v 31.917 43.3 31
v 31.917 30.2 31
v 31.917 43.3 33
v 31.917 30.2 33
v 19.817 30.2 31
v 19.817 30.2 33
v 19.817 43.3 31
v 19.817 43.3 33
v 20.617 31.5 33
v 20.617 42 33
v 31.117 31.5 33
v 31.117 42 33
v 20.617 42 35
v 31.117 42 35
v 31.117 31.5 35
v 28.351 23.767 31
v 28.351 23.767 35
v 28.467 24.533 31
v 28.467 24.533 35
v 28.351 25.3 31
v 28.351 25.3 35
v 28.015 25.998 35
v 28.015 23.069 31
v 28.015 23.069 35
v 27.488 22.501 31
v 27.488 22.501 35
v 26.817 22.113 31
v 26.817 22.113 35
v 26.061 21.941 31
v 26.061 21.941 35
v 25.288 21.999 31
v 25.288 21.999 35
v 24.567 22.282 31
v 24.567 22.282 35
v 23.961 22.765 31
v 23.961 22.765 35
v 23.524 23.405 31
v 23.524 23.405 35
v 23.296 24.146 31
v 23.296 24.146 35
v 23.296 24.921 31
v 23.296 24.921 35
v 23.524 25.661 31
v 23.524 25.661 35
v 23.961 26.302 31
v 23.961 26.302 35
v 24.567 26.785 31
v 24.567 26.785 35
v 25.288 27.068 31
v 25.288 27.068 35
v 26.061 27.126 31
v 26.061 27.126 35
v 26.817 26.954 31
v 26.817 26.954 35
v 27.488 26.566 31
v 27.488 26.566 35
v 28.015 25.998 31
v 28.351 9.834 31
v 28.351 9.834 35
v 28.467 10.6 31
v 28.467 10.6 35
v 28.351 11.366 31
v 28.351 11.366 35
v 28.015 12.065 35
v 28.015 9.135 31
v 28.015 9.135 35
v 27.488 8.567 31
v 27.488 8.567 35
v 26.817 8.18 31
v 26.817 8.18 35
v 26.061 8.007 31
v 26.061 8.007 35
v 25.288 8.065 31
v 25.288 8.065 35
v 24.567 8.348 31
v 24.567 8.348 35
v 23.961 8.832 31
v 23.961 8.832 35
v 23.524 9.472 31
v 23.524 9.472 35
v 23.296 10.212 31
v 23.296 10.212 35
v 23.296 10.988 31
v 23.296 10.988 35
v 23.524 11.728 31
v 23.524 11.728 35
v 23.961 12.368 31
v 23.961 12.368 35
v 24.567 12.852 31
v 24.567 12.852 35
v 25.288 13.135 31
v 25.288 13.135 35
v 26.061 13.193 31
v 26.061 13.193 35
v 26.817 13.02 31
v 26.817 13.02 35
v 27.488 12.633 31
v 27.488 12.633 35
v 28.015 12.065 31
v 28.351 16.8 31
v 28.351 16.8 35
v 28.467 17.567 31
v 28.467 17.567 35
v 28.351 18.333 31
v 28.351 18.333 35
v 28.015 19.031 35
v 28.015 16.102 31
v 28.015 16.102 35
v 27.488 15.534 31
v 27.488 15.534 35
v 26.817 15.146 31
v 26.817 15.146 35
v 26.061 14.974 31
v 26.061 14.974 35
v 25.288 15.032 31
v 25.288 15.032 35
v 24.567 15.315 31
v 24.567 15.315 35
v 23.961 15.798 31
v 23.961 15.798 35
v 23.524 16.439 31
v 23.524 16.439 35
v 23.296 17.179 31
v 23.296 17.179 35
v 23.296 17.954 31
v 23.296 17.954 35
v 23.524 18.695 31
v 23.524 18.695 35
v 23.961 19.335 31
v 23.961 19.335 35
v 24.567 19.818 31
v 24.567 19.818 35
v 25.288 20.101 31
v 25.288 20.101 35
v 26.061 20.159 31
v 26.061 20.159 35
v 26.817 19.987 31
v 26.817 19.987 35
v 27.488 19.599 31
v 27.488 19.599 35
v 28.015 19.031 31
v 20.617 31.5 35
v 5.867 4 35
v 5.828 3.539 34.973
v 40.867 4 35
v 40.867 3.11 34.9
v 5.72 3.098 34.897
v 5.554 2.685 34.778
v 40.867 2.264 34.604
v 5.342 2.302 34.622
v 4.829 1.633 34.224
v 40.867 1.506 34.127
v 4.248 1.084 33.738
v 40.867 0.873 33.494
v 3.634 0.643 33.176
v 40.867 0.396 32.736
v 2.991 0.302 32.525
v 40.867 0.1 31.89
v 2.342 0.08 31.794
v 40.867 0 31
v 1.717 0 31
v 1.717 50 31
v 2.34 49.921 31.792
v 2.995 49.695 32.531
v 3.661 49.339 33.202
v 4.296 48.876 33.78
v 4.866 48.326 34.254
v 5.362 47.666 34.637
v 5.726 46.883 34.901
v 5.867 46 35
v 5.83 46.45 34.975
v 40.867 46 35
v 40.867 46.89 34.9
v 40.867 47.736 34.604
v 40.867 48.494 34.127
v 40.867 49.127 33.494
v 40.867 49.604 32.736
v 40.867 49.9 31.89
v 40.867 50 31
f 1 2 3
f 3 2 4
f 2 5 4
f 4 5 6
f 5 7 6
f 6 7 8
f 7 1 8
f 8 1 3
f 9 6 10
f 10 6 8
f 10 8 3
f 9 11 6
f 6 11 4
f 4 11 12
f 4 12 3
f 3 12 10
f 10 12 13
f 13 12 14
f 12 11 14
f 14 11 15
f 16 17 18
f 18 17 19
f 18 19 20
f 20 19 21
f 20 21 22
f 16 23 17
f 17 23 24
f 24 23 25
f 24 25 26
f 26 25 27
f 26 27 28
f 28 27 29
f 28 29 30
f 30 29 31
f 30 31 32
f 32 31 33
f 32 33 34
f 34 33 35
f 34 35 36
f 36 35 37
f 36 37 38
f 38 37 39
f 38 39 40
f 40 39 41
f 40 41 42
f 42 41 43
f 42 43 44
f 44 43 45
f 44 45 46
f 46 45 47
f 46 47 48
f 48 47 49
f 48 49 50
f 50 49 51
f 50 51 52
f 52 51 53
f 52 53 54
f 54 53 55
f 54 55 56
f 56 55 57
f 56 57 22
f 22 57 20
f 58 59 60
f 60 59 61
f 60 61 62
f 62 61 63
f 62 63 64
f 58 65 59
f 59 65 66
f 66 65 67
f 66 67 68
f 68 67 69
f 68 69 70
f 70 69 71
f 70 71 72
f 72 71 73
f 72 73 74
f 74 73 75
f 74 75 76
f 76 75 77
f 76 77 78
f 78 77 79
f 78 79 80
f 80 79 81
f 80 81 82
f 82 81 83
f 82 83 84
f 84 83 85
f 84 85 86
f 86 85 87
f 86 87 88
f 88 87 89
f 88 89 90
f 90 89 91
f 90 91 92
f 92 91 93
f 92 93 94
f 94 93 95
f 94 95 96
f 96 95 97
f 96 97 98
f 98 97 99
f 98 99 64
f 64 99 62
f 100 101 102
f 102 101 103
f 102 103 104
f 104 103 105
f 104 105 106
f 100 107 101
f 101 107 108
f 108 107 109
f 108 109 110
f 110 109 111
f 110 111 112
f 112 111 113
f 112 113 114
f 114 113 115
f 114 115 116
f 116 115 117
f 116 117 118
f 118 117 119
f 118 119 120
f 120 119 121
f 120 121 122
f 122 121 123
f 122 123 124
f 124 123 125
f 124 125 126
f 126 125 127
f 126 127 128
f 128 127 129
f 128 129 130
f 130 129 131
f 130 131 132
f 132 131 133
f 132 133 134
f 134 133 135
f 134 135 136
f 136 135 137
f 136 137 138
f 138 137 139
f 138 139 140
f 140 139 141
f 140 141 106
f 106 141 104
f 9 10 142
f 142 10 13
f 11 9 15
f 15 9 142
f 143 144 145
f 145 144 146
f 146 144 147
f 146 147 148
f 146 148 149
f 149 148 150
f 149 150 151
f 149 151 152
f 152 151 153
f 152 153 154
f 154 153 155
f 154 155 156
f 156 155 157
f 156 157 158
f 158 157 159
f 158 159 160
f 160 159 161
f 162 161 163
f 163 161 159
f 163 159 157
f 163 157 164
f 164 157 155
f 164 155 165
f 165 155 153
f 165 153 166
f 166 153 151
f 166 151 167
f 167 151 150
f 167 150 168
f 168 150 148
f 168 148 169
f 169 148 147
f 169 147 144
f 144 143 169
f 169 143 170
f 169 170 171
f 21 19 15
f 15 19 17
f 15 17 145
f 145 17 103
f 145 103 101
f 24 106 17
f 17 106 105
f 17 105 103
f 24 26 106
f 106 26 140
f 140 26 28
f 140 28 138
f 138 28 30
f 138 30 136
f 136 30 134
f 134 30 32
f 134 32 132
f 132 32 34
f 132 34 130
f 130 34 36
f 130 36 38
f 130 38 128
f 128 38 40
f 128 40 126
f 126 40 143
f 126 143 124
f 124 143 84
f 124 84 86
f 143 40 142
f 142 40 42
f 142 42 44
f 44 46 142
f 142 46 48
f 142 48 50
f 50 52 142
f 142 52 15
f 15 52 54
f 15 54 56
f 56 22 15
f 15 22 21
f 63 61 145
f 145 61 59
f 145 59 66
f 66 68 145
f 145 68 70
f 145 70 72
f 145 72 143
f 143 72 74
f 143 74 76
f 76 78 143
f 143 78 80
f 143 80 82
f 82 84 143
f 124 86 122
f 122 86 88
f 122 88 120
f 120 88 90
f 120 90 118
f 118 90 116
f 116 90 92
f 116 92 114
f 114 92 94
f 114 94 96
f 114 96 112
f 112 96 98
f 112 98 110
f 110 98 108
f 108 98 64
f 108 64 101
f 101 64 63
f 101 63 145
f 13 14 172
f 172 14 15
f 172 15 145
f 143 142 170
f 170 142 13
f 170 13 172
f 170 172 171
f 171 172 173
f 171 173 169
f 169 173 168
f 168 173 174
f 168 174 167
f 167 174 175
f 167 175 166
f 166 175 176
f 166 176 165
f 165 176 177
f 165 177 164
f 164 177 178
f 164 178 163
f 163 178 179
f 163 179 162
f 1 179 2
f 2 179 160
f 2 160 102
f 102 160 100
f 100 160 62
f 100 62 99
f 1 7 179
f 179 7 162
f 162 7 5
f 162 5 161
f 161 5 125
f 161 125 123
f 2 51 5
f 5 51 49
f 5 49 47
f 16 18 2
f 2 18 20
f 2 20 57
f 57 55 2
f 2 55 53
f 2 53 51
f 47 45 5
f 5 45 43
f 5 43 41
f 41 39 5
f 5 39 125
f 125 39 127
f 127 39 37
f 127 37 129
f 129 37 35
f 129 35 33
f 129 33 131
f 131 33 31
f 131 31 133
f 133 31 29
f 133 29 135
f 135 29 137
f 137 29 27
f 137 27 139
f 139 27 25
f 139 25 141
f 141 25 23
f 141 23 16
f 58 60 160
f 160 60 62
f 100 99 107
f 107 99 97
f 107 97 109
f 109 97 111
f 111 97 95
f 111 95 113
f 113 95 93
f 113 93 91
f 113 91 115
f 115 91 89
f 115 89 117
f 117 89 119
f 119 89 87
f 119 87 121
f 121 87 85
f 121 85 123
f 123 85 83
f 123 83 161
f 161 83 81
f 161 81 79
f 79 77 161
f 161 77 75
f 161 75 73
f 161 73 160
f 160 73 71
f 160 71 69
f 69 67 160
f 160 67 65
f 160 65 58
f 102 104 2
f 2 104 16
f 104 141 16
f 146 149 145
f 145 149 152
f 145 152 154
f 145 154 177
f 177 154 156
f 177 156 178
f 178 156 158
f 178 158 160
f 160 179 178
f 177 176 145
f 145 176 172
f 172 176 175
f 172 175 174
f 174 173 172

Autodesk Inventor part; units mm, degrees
ref_plane "YZ Plane" through (0, 0, 0) normal (1, 0, 0) x (0, 1, 0)
ref_plane "XZ Plane" through (0, 0, 0) normal (0, 1, 0) x (-1, 0, 0)
ref_plane "XY Plane" through (0, 0, 0) normal (0, 0, 1) x (1, 0, 0)
sketch "Sketch1" plane through (0, 0, 0) normal (0, 1, 0) x (-1, 0, 0)
  line L0 (0, 65.172) -> (0, -65.172) construction
  line L1 (43.74, 0) -> (-43.74, 0) construction
  spline S0 degree 3 poles (-5.8666, 35) (13.8832, 21.2522) (-10.0462, -16.0043) (8.551, -35) knots 1 1 1 1 2 2 2 2
  line L2 (-5.8666, 35) -> (13.8832, 21.2522) construction
  line L3 (13.8832, 21.2522) -> (-10.0462, -16.0043) construction
  line L4 (-10.0462, -16.0043) -> (8.551, -35) construction
  line L5 (-5.8666, 35) -> (-40.8666, 35)
  line L6 (-1.7165, 31) -> (-40.8666, 31)
  line L7 (-40.8666, 35) -> (-40.8666, 31)
  point P0 (0, 0)
  point P1 (0, 0)
  point P2 (0, 0)
  point P3 (0, 0)
  dimension "d0" = 35
  dimension "d1" = 4
extrude "Extrusion1" add sketch "Sketch1" along normal blind 50
fillet "Fillet1" radius 4 2 edges at (23.3666, 50, 35) (23.3666, 0, 35)
sketch "Sketch2" plane through (5.8666, 4, 35) normal (0, 0, 1) x (1, 0, 0)
  circle A0 centre (20, 6.6) radius 2.6
  circle A1 centre (20, 13.5667) radius 2.6
  circle A2 centre (20, 20.5333) radius 2.6
  line L0 (14.75, 27.5) -> (25.25, 27.5)
  line L1 (25.25, 27.5) -> (25.25, 38)
  line L2 (25.25, 38) -> (14.75, 38)
  line L3 (14.75, 38) -> (14.75, 27.5)
  line L4 (35, 0) -> (35, 42) projected
  line L5 (35, 0) -> (0, 0) projected
  line L6 (0, 42) -> (35, 42) projected
  point P0 (-5.8666, -4)
  dimension "d5" = 5.2
  dimension "d6" = 5.2
  dimension "d7" = 5.2
  dimension "d8" = 10.5
  dimension "d9" = 10.5
  dimension "d10" = 15
  dimension "d11" = 15
  dimension "d12" = 15
  dimension "d13" = 6.6
  dimension "d14" = 4
  dimension "d15" = 6.9667
  dimension "d16" = 6.9667
  dimension "d17" = 6.9667
  dimension "d18" = 20.25
extrude "Extrusion2" cut sketch "Sketch2" against normal blind 70
sketch "Sketch3" plane through (40.8666, 0, 31) normal (0, 0, -1) x (-1, 0, 0)
  line L0 (20.25, 31.5) -> (9.75, 31.5) projected
  line L1 (20.25, 42) -> (20.25, 31.5) projected
  line L2 (9.75, 31.5) -> (9.75, 42) projected
  line L3 (9.75, 42) -> (20.25, 42) projected
  line L4 (21.05, 43.3) -> (8.95, 43.3)
  line L5 (8.95, 43.3) -> (8.95, 30.2)
  line L6 (8.95, 30.2) -> (21.05, 30.2)
  line L7 (21.05, 30.2) -> (21.05, 43.3)
  line L8 (4.9766, 36.75) -> (25.0234, 36.75) construction
  line L9 (15, 47.4174) -> (15, 24.5333) construction
  circle A0 centre (15, 24.5333) radius 2.6 construction
  point P0 (40.8666, 0)
  point P1 (15, 36.75)
  dimension "d21" = 13.1
  dimension "d22" = 12.1
  dimension "d25" = 5.25
  dimension "d28" = 10.5
extrude "Extrusion3" cut sketch "Sketch3" against normal blind 2
equation "\"d6\" = d5"
equation "\"d7\" = d6"
equation "\"d9\" = d8"
equation "\"d11\" = d10"
equation "\"d12\" = d11"
equation "\"d13\" = d14 + 0.5 * d5"
equation "\"d15\" = d16"
equation "\"d16\" = d17"
equation "\"d18\" = d12 + 0.5 * d9"
equation "\"d25\" = 0.5 * d28"
properties part number "Case Front"
